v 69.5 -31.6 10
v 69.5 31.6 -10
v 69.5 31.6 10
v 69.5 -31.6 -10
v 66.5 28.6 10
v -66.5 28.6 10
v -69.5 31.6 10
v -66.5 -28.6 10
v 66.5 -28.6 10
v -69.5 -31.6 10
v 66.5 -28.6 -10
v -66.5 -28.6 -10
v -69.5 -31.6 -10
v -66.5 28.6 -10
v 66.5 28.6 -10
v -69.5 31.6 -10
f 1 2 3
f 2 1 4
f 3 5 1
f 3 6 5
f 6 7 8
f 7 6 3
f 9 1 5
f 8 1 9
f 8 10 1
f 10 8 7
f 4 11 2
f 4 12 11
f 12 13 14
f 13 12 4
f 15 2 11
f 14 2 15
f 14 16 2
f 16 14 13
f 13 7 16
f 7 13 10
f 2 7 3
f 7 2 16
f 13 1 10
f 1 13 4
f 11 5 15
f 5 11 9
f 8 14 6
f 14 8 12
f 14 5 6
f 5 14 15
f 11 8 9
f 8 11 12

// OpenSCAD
SX = 140 - 1;
SY = 64.2 - 1;
SZ = 20;
WALL = 3;

difference() {
  cube([SX, SY, SZ], center=true);
  cube([SX-2*WALL, SY-2*WALL, 1000], center=true);
}
